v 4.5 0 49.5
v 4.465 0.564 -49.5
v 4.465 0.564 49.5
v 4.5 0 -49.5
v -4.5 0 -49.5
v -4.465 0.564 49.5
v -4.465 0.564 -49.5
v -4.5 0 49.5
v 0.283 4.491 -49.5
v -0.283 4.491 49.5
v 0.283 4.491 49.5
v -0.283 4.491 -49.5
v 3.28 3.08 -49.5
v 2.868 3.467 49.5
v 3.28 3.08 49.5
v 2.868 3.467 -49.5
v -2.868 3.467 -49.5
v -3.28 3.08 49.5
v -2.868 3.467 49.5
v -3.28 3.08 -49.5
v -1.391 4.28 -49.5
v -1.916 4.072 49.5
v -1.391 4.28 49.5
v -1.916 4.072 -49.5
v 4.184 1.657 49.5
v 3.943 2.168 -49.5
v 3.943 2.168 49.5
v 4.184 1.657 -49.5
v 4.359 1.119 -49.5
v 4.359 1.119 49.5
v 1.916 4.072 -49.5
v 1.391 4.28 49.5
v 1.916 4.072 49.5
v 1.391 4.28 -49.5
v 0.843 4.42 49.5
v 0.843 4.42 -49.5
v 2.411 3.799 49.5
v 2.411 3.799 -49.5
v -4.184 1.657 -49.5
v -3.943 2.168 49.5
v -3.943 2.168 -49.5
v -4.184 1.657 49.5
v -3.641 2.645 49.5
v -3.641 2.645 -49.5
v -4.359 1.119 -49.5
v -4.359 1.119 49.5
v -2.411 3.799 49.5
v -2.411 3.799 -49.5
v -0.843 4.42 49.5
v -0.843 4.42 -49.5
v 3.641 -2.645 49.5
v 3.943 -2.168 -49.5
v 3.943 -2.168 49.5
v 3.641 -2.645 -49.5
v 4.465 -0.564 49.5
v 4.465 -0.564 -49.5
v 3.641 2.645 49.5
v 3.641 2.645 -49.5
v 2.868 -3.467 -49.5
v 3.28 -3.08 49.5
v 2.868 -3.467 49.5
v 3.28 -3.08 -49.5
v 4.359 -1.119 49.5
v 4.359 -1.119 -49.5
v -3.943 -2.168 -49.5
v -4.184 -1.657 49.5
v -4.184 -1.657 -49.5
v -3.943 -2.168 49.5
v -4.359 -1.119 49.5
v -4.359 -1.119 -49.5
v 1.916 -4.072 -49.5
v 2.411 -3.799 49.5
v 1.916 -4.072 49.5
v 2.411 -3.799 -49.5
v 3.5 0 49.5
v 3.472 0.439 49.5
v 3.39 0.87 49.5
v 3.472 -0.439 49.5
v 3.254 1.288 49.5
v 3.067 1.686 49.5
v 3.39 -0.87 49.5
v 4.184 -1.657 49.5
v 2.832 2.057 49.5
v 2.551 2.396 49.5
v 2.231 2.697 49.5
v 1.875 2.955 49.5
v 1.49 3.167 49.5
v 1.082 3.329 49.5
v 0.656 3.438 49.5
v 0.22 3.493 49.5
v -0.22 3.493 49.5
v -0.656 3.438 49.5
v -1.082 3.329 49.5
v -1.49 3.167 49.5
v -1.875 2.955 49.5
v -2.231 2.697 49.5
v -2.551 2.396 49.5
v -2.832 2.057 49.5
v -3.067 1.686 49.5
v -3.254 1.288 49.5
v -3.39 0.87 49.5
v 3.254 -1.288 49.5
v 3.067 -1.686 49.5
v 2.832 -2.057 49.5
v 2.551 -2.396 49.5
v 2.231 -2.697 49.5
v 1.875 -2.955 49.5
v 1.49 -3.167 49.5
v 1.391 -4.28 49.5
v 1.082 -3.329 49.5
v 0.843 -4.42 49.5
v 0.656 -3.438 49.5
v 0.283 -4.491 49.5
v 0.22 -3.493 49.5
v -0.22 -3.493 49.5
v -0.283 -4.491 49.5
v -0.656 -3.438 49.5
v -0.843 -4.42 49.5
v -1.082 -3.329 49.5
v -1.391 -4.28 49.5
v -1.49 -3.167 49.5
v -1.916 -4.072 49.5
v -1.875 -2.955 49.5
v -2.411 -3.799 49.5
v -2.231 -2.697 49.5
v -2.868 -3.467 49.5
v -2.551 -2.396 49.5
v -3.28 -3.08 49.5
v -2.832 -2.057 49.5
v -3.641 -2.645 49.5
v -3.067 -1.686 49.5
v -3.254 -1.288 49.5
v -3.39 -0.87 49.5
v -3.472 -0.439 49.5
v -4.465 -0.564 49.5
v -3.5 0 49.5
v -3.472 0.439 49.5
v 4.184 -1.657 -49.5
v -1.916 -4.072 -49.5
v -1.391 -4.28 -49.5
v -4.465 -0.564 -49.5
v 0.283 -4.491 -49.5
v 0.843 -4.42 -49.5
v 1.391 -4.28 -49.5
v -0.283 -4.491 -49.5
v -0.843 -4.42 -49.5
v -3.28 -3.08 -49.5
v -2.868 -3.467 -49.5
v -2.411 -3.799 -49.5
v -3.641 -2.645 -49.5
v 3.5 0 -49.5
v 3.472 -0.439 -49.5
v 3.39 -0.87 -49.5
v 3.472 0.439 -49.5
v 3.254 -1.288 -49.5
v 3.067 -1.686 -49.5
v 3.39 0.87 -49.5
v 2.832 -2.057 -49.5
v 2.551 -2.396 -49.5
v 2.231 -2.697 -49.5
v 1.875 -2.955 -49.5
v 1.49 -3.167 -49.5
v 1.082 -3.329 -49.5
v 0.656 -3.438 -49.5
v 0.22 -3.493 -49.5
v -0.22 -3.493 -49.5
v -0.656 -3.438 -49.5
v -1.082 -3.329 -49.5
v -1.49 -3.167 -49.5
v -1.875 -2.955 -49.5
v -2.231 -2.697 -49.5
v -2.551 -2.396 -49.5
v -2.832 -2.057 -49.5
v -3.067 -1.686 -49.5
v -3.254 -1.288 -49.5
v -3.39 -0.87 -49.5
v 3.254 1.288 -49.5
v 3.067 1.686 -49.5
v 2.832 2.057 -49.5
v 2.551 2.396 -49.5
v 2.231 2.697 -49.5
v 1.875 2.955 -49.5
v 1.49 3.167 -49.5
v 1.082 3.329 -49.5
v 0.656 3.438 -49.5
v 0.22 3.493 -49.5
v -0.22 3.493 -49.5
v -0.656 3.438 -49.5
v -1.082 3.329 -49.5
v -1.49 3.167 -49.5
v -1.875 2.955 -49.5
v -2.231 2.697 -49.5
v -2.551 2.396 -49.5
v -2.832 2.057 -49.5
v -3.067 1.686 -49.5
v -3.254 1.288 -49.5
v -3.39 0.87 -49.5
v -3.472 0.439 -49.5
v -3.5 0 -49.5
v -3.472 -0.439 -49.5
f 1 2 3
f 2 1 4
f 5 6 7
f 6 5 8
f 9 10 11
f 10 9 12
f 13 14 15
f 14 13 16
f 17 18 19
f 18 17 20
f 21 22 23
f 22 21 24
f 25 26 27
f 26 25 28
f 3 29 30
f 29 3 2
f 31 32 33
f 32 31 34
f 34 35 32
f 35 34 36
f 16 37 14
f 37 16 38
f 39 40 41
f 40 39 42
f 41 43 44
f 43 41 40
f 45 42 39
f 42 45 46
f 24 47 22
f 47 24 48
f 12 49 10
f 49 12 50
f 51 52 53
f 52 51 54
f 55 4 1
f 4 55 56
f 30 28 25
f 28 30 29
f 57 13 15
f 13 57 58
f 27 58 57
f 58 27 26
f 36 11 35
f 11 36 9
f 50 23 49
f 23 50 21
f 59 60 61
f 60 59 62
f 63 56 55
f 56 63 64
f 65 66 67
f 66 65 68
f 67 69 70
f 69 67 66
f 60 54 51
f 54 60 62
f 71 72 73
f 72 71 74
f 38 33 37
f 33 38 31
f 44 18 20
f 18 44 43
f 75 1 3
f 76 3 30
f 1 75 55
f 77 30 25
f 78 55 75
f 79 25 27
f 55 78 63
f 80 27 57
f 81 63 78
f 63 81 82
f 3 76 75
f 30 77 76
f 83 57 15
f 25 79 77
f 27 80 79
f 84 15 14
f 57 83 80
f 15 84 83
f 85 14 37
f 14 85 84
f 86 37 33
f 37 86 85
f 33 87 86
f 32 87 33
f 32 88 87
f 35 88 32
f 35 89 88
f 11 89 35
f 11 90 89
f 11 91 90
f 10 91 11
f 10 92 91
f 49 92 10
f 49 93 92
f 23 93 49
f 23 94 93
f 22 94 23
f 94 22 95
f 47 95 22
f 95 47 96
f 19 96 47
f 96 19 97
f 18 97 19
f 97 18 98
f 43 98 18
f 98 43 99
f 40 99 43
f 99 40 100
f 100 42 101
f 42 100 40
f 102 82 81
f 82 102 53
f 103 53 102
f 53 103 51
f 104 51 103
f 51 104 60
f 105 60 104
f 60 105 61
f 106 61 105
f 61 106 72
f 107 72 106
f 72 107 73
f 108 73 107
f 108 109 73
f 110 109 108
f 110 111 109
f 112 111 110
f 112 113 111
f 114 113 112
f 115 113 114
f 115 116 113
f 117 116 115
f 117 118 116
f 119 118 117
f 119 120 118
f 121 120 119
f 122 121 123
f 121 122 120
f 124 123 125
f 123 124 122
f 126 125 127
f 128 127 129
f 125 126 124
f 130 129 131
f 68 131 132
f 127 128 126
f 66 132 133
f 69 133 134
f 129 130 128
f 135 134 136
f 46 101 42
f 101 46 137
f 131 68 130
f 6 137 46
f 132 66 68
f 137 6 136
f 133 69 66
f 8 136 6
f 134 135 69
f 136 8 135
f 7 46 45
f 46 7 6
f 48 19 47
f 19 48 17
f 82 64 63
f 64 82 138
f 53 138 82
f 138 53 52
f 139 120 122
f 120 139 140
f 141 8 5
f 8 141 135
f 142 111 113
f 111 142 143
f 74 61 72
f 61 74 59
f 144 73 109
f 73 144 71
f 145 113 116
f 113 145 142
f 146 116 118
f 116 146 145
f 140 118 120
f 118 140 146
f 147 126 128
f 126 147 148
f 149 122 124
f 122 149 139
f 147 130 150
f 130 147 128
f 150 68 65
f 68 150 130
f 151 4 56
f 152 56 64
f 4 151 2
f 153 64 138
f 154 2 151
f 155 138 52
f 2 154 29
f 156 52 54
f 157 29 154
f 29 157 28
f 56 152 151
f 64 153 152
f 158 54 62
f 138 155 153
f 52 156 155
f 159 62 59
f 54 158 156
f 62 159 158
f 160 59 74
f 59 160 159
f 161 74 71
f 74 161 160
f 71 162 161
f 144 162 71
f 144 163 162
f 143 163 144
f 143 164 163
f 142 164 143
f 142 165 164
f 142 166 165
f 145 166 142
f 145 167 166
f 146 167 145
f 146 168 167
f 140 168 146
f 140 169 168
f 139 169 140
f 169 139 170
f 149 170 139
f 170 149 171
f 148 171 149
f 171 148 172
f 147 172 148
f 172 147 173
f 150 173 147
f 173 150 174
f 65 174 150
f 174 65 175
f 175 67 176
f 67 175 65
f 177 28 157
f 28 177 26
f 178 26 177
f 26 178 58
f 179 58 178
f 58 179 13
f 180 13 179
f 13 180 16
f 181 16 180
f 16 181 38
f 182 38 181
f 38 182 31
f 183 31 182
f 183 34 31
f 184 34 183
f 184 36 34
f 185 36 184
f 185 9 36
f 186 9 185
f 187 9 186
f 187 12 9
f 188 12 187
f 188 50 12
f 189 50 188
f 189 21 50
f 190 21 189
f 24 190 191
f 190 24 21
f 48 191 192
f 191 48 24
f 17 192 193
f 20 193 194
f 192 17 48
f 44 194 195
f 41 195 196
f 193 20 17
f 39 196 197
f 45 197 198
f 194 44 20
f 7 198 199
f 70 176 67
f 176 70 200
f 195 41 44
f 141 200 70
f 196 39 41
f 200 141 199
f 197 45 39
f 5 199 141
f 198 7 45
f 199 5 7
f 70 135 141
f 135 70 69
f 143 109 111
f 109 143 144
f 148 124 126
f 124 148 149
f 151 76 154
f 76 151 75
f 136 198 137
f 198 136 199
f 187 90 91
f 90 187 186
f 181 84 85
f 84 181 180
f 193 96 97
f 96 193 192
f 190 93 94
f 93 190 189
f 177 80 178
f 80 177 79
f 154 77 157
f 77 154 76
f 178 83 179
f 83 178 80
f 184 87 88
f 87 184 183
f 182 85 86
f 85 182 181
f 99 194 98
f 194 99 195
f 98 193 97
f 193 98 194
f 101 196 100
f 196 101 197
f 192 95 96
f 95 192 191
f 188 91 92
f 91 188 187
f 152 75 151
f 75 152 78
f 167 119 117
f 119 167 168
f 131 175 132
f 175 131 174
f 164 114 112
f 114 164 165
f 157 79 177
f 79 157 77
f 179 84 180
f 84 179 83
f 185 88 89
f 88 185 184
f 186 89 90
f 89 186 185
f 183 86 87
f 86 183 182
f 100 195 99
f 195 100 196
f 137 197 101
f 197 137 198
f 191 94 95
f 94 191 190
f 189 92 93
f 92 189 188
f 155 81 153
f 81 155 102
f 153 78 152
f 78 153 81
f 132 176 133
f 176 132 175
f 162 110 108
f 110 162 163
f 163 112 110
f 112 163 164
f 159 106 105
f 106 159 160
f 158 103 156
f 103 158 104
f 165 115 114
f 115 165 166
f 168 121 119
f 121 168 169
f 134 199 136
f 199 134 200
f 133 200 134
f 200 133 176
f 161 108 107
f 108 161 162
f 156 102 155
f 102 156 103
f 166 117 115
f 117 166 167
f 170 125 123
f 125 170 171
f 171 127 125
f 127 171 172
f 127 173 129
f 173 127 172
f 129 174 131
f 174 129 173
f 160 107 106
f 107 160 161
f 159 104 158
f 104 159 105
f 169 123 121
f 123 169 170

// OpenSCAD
$fn = 50;


difference() {
	union() {
		translate(v = [0, 0, -49.5000000000]) {
			cylinder(h = 99, r = 4.5000000000);
		}
	}
	union() {
		translate(v = [0, 0, -100.0000000000]) {
			cylinder(h = 200, r = 3.5000000000);
		}
	}
}
